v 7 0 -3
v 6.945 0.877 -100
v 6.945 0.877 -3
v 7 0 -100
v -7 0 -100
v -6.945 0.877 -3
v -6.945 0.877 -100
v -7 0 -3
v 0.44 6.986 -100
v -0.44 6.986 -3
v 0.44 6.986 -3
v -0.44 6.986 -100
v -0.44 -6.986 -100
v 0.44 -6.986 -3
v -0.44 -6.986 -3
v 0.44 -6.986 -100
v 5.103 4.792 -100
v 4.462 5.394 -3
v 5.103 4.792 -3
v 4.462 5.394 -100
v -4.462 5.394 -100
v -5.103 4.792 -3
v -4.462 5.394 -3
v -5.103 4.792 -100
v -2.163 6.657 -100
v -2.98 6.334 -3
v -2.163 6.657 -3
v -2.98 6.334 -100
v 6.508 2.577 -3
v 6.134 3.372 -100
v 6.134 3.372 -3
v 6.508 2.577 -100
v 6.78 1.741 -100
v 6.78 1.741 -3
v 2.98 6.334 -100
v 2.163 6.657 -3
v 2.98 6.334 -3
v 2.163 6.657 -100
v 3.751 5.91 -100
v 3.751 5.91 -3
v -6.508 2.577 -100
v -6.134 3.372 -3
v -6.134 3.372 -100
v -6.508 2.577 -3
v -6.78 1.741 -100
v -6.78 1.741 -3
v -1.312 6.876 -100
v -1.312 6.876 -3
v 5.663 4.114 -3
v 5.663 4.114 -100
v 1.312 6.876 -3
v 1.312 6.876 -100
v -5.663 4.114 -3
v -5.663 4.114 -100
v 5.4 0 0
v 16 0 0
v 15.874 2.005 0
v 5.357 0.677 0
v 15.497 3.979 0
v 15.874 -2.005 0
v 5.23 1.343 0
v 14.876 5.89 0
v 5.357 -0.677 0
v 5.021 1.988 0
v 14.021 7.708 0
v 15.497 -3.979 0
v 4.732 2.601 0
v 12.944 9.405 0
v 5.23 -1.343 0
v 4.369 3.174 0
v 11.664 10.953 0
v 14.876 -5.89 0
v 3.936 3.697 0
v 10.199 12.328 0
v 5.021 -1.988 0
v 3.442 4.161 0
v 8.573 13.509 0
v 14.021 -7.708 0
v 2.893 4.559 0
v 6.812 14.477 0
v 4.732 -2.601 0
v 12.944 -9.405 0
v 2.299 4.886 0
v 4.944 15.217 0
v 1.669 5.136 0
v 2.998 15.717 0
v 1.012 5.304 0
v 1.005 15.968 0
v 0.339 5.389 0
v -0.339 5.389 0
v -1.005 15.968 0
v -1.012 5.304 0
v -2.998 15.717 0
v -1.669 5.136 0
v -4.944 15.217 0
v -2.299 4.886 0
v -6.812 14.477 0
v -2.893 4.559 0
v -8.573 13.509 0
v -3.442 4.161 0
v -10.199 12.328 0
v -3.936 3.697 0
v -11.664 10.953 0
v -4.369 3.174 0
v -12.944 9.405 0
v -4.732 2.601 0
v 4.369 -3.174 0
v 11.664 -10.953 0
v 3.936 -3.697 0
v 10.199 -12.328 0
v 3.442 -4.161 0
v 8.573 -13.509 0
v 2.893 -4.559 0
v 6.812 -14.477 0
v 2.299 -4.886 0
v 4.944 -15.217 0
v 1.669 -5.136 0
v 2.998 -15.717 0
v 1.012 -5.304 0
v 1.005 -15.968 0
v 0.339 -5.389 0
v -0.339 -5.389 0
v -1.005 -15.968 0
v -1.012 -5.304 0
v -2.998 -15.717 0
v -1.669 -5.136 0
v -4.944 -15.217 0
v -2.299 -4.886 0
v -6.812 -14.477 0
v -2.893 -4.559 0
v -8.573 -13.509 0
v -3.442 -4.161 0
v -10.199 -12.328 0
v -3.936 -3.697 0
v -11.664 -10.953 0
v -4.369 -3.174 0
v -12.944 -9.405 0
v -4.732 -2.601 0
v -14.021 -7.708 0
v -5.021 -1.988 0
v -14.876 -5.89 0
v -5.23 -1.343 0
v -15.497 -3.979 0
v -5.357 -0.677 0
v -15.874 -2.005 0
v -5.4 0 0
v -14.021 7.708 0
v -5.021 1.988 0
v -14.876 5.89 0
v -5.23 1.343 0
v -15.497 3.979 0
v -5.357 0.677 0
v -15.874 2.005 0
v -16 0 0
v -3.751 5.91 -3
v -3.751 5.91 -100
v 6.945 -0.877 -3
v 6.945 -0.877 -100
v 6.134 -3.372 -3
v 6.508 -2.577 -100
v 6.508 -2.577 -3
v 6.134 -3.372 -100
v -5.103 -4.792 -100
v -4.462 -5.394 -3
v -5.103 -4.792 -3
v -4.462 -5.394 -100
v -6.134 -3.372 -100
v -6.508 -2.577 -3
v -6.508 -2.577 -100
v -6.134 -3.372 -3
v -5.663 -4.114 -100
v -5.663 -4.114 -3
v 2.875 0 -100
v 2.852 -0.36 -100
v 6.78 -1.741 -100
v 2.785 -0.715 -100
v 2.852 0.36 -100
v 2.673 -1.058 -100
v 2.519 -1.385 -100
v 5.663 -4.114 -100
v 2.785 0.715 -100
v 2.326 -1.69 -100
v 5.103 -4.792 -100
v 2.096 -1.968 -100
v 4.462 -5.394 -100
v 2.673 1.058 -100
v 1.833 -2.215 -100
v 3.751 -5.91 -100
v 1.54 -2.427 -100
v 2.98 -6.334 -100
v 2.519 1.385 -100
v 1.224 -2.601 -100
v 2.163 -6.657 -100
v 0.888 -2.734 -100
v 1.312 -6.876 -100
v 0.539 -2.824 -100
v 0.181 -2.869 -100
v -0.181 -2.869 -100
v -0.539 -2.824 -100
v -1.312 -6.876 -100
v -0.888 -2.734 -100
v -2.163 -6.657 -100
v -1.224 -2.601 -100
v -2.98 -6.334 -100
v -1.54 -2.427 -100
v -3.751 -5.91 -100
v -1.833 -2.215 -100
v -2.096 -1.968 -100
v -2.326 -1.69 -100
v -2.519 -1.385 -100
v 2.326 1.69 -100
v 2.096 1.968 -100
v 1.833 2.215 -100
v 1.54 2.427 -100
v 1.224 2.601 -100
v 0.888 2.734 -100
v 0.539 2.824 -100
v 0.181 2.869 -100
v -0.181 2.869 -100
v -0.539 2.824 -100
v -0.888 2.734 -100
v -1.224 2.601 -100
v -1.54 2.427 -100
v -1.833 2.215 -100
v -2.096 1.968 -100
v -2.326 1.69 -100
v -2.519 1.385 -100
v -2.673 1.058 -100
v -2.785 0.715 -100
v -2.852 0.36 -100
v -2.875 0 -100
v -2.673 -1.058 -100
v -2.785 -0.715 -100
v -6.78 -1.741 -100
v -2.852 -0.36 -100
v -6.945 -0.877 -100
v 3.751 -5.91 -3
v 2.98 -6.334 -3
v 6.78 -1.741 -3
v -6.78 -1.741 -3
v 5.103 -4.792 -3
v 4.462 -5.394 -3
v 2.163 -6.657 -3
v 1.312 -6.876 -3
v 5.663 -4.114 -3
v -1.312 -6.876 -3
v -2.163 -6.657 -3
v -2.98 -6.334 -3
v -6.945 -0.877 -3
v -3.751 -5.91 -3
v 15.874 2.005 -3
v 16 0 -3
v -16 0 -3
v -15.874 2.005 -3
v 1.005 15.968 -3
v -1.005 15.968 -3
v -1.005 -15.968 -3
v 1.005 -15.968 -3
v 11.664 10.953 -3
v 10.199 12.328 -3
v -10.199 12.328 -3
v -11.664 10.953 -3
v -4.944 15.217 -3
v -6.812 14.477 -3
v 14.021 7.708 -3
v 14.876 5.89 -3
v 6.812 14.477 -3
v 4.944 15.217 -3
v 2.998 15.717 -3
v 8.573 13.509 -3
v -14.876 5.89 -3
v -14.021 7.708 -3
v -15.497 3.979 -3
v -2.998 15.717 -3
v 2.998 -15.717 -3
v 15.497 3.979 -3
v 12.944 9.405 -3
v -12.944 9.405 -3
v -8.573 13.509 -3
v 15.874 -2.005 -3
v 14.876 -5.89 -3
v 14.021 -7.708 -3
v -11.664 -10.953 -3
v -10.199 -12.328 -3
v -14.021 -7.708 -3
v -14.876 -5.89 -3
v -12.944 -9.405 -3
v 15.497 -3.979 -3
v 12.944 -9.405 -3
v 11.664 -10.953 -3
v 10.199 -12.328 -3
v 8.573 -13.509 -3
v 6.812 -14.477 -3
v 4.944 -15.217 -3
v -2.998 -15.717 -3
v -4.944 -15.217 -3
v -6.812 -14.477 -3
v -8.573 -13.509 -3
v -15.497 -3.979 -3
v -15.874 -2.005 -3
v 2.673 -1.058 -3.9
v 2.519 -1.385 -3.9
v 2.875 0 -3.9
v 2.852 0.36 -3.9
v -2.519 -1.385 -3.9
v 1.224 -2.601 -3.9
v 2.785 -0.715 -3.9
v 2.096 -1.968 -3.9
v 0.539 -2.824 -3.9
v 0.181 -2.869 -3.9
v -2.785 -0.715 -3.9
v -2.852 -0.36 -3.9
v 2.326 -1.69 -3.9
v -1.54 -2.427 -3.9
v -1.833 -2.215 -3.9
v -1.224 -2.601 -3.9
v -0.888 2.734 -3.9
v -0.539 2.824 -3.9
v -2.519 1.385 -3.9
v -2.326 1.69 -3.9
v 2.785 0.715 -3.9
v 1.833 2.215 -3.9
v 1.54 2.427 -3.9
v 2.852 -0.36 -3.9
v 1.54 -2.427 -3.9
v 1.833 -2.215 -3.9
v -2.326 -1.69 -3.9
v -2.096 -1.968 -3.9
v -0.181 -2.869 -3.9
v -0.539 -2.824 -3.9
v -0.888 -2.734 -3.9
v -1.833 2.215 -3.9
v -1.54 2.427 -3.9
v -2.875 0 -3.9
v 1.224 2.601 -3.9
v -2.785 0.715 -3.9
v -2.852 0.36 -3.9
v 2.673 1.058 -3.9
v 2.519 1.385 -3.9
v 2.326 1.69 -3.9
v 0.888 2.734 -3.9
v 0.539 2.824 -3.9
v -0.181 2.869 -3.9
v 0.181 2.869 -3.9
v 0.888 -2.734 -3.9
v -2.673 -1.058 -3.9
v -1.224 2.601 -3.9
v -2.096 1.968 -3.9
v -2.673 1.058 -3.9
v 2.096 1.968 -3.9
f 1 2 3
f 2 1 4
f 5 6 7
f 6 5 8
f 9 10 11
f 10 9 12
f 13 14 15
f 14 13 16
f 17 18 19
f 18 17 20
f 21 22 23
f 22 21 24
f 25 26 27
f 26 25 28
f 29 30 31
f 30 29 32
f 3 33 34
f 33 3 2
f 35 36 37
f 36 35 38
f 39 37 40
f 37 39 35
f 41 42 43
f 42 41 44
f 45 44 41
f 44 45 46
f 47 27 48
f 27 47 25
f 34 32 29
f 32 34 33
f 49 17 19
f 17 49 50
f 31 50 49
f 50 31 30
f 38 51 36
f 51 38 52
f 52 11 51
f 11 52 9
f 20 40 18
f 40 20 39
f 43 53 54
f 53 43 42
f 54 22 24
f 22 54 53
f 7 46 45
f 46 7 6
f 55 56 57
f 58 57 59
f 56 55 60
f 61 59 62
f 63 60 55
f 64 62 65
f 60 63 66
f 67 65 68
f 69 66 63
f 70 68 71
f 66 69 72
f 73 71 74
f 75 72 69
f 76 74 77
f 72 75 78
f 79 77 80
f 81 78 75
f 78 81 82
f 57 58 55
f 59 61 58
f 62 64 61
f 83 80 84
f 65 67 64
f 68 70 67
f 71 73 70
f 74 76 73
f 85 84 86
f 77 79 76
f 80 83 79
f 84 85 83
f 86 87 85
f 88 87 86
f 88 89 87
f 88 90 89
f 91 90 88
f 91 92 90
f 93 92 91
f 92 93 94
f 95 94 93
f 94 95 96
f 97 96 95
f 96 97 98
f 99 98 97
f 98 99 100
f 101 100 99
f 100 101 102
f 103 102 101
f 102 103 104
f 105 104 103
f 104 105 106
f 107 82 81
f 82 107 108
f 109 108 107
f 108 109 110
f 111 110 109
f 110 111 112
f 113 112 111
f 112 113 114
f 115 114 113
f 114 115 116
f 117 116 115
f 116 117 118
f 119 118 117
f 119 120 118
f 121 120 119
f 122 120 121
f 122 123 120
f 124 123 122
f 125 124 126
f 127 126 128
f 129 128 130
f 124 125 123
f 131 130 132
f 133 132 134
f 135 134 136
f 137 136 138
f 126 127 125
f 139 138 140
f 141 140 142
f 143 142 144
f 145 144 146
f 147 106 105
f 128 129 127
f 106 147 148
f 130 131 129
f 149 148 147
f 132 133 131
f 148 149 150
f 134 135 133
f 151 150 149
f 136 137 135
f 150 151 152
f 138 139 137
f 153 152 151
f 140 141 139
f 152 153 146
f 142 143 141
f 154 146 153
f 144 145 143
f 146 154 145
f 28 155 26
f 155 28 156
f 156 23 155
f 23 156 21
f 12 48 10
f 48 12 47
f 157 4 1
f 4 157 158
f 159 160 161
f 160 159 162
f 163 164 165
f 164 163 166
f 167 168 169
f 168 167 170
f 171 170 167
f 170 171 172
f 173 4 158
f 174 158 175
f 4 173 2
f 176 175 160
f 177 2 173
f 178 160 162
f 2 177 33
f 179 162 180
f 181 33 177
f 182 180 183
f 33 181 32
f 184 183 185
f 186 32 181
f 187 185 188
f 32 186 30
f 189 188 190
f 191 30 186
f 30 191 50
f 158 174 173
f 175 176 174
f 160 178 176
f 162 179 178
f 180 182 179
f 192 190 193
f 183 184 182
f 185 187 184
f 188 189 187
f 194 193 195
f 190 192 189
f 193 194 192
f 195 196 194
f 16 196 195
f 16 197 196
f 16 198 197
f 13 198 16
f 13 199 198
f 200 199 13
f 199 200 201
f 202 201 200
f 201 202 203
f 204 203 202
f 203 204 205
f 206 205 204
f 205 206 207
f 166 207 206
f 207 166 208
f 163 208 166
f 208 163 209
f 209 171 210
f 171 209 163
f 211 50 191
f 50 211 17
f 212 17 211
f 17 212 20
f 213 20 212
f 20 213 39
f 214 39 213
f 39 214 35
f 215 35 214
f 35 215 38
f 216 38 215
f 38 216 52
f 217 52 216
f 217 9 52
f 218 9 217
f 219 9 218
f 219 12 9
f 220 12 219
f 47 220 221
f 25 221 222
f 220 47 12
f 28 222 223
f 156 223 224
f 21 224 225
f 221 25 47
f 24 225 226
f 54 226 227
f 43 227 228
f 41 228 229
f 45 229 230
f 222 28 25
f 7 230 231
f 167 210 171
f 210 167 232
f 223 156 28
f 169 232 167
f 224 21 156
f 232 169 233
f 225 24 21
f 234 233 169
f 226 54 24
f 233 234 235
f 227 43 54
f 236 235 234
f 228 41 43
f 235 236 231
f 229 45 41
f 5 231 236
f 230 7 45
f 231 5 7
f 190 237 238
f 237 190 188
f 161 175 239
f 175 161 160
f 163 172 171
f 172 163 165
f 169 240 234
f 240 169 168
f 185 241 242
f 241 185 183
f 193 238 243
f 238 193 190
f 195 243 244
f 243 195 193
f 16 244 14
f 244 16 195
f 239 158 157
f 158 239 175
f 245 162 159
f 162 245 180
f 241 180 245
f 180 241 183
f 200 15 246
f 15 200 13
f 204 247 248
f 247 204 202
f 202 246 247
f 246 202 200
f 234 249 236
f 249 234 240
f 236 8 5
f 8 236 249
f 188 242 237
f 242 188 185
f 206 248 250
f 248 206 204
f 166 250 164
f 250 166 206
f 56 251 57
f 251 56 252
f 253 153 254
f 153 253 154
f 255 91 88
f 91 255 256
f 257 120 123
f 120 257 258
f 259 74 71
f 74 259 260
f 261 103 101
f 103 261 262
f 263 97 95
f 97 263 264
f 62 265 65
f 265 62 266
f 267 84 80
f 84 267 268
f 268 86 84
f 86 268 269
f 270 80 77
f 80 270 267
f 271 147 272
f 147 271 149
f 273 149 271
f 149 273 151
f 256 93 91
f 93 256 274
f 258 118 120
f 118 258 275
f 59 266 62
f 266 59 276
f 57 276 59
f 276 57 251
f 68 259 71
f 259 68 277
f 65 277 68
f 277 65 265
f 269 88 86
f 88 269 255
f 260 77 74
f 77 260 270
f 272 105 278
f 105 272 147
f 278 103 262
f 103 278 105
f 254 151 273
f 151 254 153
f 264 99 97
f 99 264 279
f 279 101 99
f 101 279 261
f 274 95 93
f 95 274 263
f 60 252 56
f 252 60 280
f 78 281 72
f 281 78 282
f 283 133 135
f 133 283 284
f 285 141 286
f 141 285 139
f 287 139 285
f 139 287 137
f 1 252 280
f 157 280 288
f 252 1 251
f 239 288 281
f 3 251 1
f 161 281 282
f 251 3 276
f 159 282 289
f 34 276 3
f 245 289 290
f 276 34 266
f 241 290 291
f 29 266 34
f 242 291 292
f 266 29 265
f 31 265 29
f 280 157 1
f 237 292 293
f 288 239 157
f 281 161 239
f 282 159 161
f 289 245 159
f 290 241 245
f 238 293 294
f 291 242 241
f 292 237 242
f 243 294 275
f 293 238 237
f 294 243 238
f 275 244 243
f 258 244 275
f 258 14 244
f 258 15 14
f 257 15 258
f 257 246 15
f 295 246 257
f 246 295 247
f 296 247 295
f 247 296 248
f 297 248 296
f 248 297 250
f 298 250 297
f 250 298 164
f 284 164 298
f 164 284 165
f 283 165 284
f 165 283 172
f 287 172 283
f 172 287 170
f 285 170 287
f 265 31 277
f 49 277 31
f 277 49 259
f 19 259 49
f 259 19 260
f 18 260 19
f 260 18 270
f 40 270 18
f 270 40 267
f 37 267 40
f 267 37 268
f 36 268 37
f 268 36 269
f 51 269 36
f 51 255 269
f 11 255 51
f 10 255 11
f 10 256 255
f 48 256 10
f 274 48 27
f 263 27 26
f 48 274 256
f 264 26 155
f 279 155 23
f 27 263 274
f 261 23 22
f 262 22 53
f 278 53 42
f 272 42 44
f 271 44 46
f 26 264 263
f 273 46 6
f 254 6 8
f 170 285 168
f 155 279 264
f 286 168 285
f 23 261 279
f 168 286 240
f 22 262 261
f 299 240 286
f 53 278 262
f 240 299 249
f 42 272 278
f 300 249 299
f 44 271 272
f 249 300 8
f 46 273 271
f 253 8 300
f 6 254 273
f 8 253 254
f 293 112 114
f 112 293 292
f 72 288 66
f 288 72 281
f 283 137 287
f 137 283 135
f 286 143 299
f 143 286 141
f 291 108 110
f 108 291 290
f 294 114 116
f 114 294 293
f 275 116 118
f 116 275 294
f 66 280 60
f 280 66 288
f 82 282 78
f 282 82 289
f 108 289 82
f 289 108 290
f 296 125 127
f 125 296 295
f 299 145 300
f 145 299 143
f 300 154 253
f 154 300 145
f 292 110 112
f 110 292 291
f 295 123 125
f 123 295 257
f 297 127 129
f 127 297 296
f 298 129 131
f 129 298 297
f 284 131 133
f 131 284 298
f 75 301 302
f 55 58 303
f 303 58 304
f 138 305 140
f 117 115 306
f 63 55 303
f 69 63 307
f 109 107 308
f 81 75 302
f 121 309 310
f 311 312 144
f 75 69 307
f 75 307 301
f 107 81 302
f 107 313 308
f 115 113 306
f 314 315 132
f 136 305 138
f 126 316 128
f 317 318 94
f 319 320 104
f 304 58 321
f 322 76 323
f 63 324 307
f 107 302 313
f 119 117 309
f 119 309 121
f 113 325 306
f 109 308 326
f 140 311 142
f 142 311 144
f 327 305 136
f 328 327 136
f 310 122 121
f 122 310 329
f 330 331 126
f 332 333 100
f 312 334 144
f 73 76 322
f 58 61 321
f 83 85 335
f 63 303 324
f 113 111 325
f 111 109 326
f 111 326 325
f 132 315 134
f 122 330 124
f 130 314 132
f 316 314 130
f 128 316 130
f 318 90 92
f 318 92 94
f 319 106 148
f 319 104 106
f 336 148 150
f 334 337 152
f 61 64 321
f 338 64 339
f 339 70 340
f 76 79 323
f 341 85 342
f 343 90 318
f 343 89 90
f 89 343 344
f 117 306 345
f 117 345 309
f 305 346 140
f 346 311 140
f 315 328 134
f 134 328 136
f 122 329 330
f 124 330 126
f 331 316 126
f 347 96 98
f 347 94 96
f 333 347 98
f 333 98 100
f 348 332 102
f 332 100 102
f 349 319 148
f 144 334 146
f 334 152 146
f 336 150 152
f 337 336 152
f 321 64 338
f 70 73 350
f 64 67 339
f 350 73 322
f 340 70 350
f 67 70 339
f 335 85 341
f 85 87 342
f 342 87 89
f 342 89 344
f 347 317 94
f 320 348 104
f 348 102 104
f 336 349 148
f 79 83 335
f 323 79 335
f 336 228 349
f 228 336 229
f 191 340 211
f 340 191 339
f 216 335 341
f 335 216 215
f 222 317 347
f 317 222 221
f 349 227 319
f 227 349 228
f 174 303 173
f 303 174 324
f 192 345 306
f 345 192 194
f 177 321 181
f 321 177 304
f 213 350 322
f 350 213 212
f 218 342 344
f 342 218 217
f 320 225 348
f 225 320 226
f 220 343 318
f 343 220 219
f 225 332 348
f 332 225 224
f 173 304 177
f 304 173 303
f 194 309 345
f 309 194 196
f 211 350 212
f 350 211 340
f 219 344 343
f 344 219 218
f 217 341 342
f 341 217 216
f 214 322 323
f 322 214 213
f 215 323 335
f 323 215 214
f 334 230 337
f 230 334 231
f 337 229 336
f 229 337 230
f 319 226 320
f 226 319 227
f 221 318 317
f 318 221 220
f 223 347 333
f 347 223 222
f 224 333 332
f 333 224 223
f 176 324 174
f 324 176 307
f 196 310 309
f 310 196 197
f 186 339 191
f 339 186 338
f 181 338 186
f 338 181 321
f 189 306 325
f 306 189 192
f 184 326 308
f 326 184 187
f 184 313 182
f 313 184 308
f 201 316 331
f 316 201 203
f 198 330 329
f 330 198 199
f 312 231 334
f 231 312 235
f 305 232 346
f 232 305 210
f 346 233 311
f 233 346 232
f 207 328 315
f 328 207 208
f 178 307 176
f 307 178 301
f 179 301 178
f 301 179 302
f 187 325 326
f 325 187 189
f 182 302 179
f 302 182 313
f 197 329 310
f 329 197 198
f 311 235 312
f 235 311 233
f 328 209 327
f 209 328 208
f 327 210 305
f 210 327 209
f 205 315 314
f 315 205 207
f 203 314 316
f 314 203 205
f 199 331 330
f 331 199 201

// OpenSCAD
$fn = 50;


difference() {
	union() {
		translate(v = [0, 0, -100.0000000000]) {
			cylinder(h = 100, r = 7.0000000000);
		}
		translate(v = [0, 0, -3.0000000000]) {
			cylinder(h = 3, r = 16.0000000000);
		}
	}
	union() {
		translate(v = [0, 0, 0]) {
			rotate(a = [0, 0, 0]) {
				difference() {
					union() {
						#translate(v = [0, 0, -100.0000000000]) {
							cylinder(h = 100, r = 2.6000000000);
						}
						#translate(v = [0, 0, -3.9000000000]) {
							cylinder(h = 3.9000000000, r1 = 2.8750000000, r2 = 5.4000000000);
						}
						#translate(v = [0, 0, -100.0000000000]) {
							cylinder(h = 100, r = 2.8750000000);
						}
						#translate(v = [0, 0, -100.0000000000]) {
							cylinder(h = 100, r = 2.6000000000);
						}
					}
					union();
				}
			}
		}
	}
}
